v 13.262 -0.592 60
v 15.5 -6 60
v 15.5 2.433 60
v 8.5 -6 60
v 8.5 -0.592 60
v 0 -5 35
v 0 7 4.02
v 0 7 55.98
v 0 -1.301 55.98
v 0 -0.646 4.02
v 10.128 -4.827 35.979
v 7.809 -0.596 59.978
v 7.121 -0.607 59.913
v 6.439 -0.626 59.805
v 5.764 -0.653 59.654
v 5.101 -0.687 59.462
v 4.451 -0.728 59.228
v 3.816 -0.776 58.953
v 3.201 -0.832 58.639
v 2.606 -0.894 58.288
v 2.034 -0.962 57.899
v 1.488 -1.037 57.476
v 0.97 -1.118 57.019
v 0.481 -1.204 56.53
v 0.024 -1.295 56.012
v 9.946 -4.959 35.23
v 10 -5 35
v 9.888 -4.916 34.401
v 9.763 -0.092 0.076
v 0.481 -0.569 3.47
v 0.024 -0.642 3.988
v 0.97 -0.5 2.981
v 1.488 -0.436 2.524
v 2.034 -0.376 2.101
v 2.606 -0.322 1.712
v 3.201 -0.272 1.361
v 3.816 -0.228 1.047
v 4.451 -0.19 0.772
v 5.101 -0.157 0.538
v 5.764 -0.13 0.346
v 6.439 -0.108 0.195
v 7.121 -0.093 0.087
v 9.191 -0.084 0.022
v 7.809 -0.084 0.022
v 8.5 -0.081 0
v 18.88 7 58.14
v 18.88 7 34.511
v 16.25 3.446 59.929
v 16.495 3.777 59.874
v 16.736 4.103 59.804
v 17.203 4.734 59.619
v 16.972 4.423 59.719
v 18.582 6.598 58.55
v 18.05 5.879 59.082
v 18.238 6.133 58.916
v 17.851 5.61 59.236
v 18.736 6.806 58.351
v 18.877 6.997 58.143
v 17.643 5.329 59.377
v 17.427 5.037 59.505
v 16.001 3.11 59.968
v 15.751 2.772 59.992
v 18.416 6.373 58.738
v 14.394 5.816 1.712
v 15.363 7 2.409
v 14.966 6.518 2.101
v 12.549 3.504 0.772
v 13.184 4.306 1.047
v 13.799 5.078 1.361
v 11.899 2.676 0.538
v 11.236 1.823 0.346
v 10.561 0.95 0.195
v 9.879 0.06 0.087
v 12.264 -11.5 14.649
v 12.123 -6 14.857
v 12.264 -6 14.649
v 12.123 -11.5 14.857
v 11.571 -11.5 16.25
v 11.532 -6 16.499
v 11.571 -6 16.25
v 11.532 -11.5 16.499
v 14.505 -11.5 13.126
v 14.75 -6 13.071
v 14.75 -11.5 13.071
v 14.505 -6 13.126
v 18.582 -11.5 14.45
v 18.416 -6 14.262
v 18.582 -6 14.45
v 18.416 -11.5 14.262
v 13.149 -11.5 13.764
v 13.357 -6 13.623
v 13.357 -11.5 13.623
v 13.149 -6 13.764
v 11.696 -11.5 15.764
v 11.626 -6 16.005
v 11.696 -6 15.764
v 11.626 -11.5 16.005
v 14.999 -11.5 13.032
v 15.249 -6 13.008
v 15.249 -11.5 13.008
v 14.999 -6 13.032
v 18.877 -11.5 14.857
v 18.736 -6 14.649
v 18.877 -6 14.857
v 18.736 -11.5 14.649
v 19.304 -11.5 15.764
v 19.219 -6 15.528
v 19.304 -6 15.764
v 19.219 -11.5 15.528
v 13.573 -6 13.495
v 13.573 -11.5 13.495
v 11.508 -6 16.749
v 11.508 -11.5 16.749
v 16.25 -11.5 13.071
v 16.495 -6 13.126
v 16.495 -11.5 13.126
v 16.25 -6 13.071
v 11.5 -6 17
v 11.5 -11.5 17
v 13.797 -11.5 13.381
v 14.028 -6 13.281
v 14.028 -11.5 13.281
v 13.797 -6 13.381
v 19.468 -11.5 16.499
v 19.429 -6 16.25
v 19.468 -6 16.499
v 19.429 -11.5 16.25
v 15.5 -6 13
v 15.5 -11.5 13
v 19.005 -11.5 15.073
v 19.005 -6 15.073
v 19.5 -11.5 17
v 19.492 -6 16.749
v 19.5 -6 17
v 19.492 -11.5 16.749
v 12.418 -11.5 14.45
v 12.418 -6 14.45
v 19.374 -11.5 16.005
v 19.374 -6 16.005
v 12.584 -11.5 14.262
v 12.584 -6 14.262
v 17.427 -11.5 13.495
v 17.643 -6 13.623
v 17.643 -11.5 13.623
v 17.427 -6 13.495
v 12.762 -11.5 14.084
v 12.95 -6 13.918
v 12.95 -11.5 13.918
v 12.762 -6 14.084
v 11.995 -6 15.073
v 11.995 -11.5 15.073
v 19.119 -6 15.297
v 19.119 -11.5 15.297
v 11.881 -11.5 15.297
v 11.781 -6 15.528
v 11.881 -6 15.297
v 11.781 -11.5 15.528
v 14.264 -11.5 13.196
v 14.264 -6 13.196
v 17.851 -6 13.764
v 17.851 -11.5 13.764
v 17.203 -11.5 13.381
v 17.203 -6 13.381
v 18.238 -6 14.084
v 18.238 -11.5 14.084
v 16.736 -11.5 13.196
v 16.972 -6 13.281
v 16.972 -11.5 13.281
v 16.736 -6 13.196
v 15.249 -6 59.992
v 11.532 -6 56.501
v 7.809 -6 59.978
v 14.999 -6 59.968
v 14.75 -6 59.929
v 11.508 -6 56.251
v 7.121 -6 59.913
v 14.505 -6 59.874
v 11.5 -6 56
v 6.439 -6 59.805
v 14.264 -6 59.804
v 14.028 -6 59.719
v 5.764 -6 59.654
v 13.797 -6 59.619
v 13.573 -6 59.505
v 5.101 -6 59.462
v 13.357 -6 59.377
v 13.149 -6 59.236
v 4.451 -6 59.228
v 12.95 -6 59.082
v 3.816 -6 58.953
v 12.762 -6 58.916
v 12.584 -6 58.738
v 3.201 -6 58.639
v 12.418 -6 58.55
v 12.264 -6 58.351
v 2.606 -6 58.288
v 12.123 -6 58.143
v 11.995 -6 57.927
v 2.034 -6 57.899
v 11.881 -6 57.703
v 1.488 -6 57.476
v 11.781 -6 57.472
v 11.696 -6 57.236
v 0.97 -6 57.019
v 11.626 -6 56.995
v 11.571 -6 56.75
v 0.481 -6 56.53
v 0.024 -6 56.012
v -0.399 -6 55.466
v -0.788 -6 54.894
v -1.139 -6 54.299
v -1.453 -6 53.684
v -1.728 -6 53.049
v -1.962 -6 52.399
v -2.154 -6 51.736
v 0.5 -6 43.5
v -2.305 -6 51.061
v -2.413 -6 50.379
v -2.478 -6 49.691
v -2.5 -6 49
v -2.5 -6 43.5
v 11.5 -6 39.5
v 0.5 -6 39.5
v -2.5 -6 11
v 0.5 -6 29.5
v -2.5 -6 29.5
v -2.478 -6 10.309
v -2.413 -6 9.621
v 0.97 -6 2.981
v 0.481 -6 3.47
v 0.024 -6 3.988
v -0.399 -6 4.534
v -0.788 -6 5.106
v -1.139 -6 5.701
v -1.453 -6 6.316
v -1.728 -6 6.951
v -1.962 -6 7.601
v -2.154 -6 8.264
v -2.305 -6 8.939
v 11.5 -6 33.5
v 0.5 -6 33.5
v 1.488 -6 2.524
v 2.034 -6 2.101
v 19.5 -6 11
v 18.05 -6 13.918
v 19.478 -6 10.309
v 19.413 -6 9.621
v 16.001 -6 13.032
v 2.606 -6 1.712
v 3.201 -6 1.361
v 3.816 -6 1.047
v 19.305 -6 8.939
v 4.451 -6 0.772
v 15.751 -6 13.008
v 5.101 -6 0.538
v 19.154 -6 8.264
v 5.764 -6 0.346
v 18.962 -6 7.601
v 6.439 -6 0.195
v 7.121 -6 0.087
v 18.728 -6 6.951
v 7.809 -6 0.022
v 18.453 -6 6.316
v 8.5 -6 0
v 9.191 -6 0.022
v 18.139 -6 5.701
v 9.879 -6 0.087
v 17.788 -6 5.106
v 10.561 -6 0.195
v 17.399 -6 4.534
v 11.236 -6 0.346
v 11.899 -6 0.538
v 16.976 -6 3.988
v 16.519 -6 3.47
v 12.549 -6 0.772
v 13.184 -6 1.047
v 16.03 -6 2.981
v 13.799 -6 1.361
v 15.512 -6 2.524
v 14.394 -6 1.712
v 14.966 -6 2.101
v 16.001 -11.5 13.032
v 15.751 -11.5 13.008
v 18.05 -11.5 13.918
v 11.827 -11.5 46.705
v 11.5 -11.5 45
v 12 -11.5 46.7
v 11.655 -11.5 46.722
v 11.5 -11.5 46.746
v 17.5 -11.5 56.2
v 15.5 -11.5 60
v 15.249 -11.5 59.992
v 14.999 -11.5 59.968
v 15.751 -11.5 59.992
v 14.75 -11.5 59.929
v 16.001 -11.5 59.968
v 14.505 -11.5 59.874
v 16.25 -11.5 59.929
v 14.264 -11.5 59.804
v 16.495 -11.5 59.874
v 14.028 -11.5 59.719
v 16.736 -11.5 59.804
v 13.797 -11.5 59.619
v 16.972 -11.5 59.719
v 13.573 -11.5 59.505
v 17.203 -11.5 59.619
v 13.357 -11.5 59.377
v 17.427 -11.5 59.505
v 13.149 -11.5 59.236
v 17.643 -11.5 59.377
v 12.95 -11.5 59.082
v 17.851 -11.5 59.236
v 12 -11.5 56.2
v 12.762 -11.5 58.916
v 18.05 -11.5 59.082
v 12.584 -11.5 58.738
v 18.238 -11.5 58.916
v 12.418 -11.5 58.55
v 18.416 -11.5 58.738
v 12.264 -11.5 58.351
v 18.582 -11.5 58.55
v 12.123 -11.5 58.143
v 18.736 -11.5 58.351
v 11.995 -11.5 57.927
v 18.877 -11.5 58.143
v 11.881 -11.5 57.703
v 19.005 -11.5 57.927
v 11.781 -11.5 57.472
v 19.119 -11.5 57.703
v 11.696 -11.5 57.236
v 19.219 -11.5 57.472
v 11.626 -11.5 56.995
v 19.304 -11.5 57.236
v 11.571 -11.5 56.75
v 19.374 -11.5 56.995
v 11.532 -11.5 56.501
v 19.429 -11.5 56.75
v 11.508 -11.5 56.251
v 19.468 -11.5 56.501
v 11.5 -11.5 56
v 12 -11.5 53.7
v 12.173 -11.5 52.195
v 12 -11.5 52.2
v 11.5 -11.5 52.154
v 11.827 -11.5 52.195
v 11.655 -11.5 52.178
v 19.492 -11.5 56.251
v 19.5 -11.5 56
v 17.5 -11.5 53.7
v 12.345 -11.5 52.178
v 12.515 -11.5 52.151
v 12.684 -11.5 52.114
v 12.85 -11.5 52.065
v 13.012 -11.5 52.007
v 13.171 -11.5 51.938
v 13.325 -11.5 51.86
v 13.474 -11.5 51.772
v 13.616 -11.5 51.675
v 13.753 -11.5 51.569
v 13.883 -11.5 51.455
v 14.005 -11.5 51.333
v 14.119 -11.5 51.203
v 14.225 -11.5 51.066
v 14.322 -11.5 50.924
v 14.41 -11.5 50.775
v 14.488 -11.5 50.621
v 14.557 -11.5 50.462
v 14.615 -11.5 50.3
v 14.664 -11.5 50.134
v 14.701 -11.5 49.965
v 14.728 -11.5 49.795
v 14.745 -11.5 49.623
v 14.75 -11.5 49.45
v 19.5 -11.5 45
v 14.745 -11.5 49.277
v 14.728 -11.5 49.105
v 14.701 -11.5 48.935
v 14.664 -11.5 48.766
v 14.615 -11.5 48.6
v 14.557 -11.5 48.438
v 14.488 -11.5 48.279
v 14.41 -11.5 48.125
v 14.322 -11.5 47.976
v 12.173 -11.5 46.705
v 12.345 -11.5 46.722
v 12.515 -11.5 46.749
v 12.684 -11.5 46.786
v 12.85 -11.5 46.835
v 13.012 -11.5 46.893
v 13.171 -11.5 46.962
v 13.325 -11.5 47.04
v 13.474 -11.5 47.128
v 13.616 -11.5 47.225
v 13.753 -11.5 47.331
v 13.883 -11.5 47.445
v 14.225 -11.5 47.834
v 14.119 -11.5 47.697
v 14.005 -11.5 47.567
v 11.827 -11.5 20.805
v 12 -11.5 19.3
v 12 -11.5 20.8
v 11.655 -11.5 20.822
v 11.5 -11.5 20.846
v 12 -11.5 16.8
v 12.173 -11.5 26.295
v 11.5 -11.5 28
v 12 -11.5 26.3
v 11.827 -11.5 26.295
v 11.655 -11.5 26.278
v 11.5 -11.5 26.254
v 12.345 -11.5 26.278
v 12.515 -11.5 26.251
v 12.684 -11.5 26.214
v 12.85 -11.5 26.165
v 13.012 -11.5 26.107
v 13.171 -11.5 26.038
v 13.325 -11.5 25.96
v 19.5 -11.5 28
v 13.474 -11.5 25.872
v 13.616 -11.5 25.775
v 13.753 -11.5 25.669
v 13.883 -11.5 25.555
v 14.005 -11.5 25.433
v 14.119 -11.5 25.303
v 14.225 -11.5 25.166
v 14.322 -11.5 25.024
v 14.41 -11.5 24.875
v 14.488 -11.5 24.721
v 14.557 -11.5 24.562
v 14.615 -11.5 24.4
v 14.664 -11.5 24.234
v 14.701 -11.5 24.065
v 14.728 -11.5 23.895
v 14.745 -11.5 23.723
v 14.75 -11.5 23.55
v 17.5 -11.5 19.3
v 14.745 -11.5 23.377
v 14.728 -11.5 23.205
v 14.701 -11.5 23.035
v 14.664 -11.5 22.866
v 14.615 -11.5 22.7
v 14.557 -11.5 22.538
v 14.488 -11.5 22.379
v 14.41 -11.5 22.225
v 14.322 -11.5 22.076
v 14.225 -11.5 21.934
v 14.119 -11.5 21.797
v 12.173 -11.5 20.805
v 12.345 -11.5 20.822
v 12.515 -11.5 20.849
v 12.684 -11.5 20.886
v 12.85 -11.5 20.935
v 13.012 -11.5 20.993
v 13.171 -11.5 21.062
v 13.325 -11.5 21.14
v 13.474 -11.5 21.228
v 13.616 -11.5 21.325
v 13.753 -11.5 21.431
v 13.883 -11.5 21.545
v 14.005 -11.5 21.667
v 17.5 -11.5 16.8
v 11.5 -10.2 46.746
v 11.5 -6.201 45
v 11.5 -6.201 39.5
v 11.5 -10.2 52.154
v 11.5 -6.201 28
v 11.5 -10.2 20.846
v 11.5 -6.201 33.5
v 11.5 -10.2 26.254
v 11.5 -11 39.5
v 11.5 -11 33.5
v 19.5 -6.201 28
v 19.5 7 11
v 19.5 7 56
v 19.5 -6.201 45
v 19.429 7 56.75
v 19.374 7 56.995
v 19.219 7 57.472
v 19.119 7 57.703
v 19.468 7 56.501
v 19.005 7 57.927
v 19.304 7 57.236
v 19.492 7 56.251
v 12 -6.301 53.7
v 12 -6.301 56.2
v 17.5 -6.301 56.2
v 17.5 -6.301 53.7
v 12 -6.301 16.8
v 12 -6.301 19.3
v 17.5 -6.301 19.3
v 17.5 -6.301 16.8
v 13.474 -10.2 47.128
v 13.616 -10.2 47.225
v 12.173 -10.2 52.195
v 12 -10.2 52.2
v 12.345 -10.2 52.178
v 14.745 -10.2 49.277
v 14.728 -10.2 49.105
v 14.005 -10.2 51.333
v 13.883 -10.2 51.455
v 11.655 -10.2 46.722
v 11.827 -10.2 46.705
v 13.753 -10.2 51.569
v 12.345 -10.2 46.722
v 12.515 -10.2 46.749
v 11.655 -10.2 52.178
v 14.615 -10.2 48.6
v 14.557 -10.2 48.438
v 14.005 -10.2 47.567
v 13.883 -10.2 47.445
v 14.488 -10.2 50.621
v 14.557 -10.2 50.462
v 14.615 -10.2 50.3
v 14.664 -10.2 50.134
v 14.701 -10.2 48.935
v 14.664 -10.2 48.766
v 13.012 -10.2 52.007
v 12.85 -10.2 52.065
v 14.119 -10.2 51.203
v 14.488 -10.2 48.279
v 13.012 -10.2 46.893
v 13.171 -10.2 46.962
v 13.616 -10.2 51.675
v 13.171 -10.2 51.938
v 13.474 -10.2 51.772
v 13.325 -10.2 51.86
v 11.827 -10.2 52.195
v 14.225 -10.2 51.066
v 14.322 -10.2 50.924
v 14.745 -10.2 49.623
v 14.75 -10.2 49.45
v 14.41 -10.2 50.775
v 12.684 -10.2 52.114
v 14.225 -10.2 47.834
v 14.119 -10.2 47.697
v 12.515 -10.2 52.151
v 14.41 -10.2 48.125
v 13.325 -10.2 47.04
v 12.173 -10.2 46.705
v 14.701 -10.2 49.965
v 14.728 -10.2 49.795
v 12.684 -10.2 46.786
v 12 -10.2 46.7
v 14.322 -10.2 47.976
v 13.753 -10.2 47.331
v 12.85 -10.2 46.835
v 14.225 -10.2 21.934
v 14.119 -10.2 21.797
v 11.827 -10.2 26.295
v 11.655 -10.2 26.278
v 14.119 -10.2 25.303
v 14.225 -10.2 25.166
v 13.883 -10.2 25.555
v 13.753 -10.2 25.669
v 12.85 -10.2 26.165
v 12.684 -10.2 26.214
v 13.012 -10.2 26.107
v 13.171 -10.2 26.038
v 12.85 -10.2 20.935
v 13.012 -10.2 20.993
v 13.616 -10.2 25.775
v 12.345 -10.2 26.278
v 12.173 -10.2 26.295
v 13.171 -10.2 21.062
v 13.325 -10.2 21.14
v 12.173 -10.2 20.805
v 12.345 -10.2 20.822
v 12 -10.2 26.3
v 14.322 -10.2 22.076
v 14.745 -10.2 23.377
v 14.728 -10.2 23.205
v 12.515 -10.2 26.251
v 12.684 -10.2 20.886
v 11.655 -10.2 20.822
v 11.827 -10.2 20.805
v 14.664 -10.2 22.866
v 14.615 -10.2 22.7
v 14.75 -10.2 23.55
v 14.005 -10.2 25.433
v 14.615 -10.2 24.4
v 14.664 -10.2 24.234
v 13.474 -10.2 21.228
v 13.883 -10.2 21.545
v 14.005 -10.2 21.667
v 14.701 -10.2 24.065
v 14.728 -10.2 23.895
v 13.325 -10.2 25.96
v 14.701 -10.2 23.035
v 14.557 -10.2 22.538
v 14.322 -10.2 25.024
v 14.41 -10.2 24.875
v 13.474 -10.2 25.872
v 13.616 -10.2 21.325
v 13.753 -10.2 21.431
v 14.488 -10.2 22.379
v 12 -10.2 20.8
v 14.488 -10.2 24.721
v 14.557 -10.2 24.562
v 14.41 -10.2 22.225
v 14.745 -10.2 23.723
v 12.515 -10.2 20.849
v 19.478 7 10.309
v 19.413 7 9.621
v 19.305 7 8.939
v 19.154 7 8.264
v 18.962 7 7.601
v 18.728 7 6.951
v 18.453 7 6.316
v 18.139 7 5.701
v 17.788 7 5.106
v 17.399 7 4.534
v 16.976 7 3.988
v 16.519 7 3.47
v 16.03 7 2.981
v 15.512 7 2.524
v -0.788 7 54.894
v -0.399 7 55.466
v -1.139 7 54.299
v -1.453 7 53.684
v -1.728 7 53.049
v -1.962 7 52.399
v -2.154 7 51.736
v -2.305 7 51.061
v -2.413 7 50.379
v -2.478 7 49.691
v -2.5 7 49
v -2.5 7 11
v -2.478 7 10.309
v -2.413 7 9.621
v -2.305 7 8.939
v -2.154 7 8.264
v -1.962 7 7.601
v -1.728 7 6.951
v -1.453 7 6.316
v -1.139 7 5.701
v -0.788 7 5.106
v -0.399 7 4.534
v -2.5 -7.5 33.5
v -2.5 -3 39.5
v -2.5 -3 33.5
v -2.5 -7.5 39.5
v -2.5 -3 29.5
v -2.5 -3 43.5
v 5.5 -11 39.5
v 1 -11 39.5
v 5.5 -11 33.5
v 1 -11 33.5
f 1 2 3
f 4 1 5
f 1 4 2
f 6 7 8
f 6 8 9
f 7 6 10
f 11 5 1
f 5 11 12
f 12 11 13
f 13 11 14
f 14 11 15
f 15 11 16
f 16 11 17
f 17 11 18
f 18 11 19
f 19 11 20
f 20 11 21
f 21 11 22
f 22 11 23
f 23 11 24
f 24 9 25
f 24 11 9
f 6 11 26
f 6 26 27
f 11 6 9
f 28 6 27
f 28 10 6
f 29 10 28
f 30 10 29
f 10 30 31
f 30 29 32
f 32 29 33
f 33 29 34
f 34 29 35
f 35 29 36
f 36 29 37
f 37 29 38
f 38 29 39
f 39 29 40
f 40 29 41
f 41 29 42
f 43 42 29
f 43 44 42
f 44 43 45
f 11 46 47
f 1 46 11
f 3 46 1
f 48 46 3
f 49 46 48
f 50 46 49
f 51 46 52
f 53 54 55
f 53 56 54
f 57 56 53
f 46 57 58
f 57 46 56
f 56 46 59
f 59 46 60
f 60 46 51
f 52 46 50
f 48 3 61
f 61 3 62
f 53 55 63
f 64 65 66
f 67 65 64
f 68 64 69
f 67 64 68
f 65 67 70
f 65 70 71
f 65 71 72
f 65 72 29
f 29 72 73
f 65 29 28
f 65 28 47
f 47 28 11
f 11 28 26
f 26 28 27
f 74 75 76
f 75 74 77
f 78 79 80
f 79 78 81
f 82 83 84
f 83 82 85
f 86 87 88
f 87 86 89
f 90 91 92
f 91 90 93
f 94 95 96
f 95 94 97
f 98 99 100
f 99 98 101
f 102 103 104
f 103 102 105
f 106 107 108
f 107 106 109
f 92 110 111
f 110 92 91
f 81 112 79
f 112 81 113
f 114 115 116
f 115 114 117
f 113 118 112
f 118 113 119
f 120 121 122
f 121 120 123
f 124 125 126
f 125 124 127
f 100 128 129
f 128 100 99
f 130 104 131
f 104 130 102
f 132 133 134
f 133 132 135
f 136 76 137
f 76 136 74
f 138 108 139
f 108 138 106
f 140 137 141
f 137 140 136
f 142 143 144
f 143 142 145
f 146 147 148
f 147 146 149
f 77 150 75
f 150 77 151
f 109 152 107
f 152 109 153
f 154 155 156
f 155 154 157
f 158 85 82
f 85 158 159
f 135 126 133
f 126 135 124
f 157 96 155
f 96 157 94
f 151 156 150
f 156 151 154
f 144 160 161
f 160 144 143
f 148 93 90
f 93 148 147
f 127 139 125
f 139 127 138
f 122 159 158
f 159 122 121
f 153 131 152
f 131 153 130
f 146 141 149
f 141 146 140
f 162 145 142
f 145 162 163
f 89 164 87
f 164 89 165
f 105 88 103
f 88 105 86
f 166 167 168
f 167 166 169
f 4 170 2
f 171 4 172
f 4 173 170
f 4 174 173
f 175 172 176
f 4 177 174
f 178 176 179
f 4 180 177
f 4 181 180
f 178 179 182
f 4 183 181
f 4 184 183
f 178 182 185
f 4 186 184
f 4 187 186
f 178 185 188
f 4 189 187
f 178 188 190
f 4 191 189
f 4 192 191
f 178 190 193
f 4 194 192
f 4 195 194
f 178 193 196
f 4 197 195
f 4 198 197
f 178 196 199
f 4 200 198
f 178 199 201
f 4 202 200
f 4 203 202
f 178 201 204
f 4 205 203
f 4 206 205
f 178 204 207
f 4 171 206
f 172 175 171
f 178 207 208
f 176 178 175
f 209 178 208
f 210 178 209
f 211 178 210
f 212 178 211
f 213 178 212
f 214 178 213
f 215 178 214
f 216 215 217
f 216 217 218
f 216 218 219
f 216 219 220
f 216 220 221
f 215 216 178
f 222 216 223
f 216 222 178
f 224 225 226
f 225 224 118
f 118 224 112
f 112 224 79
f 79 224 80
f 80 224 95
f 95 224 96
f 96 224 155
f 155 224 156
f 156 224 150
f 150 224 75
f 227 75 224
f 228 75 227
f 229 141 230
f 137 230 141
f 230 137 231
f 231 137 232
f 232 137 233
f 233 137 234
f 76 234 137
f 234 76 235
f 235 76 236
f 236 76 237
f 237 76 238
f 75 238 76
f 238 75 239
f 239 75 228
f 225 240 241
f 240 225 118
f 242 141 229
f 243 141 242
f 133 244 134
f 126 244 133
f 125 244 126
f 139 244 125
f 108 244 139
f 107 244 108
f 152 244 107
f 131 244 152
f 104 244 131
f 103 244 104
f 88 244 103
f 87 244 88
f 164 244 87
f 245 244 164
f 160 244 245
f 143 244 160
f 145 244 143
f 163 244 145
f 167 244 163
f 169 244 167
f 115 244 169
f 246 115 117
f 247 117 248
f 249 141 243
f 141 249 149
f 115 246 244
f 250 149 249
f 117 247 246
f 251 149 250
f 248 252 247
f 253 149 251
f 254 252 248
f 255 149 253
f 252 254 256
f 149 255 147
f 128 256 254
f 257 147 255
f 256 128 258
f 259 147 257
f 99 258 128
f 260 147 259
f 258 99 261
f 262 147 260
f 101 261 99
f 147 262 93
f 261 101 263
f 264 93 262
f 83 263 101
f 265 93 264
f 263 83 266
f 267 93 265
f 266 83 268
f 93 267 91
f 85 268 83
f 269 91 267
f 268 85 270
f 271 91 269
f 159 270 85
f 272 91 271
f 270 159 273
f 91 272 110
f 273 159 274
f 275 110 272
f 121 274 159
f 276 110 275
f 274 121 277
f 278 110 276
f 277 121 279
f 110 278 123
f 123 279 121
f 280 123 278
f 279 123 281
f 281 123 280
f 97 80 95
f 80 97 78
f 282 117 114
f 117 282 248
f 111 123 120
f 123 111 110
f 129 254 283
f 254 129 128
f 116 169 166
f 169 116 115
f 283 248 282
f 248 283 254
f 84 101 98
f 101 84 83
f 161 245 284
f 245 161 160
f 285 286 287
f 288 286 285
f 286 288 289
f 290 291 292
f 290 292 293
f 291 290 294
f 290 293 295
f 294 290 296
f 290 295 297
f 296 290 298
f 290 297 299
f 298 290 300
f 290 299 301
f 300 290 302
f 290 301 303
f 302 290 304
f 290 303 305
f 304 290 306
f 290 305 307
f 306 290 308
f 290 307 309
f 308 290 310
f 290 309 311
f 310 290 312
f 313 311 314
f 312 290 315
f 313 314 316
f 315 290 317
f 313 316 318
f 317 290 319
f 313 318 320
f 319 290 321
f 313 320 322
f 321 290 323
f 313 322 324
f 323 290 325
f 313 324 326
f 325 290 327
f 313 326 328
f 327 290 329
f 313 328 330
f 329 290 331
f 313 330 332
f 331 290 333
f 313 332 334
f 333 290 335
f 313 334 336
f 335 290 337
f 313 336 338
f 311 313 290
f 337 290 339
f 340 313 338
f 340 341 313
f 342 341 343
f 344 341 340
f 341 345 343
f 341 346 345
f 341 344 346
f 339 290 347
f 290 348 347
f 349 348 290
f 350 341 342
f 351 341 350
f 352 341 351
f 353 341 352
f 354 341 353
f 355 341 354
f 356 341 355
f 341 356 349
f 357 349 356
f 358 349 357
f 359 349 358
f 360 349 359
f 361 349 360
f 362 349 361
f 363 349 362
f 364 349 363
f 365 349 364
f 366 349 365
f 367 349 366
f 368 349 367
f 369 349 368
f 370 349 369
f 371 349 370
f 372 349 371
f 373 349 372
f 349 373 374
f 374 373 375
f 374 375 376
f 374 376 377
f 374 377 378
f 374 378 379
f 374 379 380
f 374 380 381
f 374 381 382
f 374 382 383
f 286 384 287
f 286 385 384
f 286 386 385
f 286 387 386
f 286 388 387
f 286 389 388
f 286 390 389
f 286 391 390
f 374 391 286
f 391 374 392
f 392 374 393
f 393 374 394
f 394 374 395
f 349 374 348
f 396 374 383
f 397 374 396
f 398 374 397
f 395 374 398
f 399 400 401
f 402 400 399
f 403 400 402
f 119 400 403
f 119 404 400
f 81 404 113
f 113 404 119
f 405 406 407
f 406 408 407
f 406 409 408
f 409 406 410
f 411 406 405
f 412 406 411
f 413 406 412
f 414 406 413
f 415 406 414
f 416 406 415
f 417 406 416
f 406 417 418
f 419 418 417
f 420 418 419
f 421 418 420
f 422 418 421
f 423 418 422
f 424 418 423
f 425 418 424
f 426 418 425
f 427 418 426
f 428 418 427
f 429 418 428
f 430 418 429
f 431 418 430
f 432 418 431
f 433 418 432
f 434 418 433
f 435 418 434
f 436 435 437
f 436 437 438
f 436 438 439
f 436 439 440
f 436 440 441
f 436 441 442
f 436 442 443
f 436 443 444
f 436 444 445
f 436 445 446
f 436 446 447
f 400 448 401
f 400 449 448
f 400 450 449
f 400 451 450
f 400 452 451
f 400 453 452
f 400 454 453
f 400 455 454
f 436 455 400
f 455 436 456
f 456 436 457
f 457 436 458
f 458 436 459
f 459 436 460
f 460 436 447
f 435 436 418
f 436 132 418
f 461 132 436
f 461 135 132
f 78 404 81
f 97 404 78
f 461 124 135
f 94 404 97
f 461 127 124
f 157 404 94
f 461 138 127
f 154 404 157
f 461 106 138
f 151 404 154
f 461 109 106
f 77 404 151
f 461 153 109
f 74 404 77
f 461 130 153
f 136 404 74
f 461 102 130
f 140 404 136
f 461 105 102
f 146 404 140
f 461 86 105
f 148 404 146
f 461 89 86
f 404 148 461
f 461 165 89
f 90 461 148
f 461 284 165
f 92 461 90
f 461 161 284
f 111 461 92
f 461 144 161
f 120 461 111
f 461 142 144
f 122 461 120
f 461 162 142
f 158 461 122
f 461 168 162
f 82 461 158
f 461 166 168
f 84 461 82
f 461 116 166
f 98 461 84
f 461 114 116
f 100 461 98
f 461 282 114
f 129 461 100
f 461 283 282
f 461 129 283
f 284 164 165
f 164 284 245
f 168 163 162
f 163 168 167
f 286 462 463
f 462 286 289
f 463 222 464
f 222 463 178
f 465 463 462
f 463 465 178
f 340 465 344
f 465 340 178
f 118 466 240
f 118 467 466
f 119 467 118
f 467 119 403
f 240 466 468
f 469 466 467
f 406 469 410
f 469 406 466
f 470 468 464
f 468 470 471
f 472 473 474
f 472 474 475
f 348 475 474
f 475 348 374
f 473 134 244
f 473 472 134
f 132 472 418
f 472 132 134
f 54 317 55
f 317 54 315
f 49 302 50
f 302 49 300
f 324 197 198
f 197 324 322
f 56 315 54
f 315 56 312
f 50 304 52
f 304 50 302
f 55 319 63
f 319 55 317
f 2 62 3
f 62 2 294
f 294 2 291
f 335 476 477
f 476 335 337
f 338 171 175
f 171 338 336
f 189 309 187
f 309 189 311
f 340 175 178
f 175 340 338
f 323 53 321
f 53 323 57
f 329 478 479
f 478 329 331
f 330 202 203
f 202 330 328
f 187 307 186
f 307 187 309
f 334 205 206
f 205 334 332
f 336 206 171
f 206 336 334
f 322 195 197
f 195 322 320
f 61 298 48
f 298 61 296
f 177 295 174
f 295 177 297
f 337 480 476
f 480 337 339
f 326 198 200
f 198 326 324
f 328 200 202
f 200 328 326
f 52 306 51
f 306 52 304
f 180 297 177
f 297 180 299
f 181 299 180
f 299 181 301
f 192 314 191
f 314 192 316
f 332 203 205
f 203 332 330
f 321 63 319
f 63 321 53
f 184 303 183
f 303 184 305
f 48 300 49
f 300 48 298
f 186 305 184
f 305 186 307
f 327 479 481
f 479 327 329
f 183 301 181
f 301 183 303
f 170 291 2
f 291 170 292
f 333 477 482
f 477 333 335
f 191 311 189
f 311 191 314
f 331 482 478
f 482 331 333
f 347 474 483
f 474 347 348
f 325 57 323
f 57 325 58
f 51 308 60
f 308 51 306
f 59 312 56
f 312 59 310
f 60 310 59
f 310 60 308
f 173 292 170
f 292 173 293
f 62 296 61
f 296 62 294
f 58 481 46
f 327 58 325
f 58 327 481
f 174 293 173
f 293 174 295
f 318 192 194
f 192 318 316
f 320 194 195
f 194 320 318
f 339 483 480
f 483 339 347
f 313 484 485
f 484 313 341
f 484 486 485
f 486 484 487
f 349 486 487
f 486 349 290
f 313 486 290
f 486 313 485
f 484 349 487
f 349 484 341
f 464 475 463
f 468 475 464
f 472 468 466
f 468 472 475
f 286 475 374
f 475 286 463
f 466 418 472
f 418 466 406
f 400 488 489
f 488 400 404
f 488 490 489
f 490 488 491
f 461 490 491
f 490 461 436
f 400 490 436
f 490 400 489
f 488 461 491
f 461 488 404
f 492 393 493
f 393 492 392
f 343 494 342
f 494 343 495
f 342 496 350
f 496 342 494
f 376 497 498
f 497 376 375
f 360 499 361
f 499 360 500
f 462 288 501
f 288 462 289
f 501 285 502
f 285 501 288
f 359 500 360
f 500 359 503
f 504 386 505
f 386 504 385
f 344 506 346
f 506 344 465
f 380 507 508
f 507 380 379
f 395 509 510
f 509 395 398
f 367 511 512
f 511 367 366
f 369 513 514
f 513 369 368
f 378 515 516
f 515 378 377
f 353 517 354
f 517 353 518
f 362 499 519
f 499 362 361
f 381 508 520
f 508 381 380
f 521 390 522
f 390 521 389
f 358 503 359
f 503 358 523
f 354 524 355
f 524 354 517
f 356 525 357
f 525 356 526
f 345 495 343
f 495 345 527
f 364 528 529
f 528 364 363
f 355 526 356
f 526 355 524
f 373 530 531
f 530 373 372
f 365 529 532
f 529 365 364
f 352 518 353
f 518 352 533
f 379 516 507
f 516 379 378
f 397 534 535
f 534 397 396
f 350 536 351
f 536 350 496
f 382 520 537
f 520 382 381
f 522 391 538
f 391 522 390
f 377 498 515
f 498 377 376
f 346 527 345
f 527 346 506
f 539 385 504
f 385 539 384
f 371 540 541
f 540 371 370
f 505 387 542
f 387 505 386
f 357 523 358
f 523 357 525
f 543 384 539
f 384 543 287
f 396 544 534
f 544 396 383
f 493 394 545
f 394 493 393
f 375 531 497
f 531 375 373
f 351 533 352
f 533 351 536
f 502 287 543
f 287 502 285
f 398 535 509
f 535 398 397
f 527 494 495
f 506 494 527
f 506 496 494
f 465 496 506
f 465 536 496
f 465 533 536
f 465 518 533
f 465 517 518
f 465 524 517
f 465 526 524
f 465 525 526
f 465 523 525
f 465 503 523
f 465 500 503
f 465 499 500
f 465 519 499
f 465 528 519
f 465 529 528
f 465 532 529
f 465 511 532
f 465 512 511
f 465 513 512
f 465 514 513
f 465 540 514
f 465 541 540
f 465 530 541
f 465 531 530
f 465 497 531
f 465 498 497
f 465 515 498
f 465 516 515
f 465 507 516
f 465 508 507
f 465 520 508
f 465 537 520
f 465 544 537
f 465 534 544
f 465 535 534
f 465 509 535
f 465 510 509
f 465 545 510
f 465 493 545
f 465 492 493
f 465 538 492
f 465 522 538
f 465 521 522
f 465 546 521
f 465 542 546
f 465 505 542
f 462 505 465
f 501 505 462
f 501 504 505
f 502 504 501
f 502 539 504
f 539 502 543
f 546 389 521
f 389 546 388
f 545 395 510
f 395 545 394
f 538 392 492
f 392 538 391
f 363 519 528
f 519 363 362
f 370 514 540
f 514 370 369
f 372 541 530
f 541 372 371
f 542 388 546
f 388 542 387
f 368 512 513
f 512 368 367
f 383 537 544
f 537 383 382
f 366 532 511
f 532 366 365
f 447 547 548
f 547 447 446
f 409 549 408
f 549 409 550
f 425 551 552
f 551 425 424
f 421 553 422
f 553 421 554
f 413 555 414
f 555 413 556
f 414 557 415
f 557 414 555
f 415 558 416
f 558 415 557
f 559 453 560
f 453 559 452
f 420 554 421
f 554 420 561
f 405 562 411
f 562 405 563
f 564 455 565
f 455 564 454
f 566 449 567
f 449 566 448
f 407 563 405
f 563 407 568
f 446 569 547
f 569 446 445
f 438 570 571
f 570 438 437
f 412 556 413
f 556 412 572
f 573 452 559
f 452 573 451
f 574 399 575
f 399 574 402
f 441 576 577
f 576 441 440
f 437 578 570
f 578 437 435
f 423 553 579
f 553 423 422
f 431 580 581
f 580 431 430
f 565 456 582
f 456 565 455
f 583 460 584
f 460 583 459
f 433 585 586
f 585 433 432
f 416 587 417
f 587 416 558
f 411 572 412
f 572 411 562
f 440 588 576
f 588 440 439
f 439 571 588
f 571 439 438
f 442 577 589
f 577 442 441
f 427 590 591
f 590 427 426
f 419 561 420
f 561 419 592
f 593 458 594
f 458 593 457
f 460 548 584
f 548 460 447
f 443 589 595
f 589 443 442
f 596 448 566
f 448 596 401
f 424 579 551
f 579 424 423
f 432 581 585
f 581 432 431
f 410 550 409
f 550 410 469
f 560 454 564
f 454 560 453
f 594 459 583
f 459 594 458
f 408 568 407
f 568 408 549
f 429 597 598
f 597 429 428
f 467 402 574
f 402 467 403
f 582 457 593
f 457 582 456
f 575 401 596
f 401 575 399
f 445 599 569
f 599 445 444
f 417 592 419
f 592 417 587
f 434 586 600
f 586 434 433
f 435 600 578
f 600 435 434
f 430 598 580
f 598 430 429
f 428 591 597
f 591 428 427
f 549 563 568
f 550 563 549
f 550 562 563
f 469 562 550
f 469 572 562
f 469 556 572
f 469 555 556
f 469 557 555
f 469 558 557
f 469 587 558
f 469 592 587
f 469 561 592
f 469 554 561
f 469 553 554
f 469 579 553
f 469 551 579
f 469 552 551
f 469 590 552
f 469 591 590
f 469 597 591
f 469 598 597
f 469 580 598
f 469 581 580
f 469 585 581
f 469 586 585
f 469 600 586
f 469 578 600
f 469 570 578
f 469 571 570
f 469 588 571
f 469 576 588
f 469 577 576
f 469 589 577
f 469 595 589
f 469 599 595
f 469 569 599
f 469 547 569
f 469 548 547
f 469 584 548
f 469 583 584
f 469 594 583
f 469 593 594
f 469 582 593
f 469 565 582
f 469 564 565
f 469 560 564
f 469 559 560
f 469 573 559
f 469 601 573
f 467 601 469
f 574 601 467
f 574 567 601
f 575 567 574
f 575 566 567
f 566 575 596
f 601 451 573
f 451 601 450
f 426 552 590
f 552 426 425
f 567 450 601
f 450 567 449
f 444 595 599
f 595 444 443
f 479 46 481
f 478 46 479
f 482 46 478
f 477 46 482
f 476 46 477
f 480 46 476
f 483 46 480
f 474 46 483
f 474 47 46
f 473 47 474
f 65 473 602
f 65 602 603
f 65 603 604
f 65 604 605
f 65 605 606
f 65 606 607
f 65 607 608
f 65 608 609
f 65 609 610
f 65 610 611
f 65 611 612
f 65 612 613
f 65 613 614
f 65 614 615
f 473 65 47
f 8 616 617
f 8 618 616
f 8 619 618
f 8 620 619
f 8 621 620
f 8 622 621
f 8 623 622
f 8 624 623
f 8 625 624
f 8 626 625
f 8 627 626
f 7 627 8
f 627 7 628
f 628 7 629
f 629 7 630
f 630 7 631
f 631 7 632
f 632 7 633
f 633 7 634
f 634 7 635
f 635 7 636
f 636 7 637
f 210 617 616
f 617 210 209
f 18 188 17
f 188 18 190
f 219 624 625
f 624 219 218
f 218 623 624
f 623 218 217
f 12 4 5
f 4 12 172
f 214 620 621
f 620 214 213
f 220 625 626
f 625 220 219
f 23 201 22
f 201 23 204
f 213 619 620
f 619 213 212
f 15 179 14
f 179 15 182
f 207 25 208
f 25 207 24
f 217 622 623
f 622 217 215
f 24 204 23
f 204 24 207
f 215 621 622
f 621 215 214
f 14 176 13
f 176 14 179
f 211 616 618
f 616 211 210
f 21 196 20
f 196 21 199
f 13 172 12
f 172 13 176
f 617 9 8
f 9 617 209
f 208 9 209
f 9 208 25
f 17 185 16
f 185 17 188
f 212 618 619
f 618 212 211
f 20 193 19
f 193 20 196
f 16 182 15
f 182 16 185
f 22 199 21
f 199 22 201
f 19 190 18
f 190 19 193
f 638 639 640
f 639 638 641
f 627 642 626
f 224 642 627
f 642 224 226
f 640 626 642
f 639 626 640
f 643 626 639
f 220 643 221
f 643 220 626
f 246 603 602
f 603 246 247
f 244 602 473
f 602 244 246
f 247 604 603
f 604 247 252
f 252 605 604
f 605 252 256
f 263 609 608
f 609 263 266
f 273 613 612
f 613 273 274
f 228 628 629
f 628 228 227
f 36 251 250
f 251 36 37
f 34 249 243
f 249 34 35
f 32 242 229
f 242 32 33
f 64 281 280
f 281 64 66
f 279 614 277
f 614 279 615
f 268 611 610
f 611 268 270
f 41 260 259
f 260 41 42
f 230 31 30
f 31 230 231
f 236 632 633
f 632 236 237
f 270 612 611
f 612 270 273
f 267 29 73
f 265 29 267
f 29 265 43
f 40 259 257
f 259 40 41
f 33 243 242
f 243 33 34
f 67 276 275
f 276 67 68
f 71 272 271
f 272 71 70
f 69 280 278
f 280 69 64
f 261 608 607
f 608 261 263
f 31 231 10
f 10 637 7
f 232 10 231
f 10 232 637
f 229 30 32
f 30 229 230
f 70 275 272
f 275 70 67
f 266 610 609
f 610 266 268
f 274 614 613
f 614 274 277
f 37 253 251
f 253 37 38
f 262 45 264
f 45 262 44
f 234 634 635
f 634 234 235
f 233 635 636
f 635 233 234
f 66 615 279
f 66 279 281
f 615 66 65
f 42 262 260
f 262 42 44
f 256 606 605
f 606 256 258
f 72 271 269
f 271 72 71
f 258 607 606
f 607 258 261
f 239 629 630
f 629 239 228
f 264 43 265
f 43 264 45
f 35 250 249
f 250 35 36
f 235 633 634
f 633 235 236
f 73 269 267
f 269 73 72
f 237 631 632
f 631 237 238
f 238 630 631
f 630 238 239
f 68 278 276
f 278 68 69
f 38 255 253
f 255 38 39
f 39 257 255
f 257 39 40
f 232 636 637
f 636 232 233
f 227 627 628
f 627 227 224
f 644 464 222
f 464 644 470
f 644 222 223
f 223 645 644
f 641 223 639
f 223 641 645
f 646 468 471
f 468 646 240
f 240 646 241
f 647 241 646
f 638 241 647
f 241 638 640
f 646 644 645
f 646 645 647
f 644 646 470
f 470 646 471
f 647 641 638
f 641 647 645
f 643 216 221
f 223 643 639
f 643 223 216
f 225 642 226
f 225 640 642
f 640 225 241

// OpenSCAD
//
// ktRACK92
//
//

gap1 = 0.001;
gap2 = 0.003;
th = 2;

W = 19.4+1-0.5;

//pad();
//pad_mir();
//fork();
base();
//base_mir();




module base_mir()
{
difference()
{
    mirror([1,0,0]) base();
}
}


module base()
{
difference()
{

    union()
    {
        translate([-5/2+22-8/2, 0-6, 60-8/2]) rotate([-90, 0, 0]) cylinder(h=13, r=8/2, $fn=100);
        translate([-5/2+22/2, 0-6, 60-22/2]) cube([22/2-8/2, 13, 22/2]);
        translate([-5/2+22/2, 0-6, 60-22/2]) cube([22/2, 13, 22/2-8/2]);
        translate([22/2-5/2, 0-6, 60-22/2]) rotate([-90, 0, 0]) cylinder(h=13, r=22/2, $fn=100);
        translate([-5/2, 0-6, 22/2]) cube([22, 13, 60-22/2-22/2]);
        translate([22/2-5/2, 0-6, 22/2]) rotate([-90, 0, 0]) cylinder(h=13, r=22/2, $fn=100);
        translate([-5/2-8/2+22, -11.5, 60-(45+2)/2]) rotate([-90, 180, 0]) pad();
        translate([-5/2, -11, 60-(45+2)/2-6/2]) cube([14, 5, 6]);
    }
    fork();
    translate([-5/2, -11+5-1.5, 60-(45+2)/2-6/2]) rotate([0, 0, 180+45]) cube([5, 18, 6]);
    translate([-5/2+4*2, -11, 60-(45+2)/2-6/2+6]) rotate([0, 0, 180-45]) cube([14, 4, 4]);
    translate([-5/2+4*2, -11, 60-(45+2)/2-6/2-4]) rotate([0, 0, 180-45]) cube([14, 4, 4]);
}
}

module fork()
{
difference()
{

    union()
    {
        translate([0, 0-5, 0]) cube([20, 30+5, 60]);
    }
    translate([0+20, 0-5, 60-25]) rotate([10, 0, 180]) cube([20, 20, 60]);
    translate([0, 0-5, 60-25]) rotate([180+8, 0, 0]) cube([20, 20, 60]);

    translate([0+10, 0-5, 60-25-1]) rotate([5, -90, 180+90-41.5]) cube([50, 20, 60]);
    translate([0+10, 0-5, 60-25+1]) rotate([180+5, 0, 90-37]) cube([50, 20, 60]);
}
}


module pad()
{
difference()
{

    union()
    {
        translate([0, -45/2+8/2-1, 0]) cylinder(h=8-2.5, r=8/2, $fn=100);
        translate([-8/2, -(45-8+2)/2, 0]) cube([8, 45-8+2, 8-2.5]);
        translate([0, 45/2-8/2+1, 0]) cylinder(h=8-2.5, r=8/2, $fn=100);
    }
    translate([-8/2+2, 8.7+17/2, 0-gap1]) cube([5.5, 2.5, 5.2]);
    translate([-8/2-gap1, -17/2, 0-gap1]) cube([8+gap2, 17, 7-1.7]);
    translate([-8/2+2, -8.7-17/2-2.5, 0-gap1]) cube([5.5, 2.5, 5.2]);

    translate([3.5, 8.7+17/4, 0]) cylinder(h=1.3, r=5.5/2, $fn=100);
    translate([3.5, -8.7-17/4, 0]) cylinder(h=1.3, r=5.5/2, $fn=100);
}
}


module cap()
{
difference()
{
    L=48;
    R=6;
    union()
    {
        translate([0, 0, 0]) cube([L-R/2, 16, 4.9+2]);
        translate([L-R/2, R/2, 0]) cylinder(h=4.9+2, r=R/2, $fn=100);
        translate([L-R/2, 16-R/2, 0]) cylinder(h=4.9+2, r=R/2, $fn=100);
        translate([L-R/2, R/2, 0]) cube([R/2, 16-R, 4.9+2]);
        
        translate([-15, 16/2-19/2, 0]) cube([25, 19, 10]);
    }
    translate([L-11, (16-11)/2, 0]) cylinder(h=4.9, r=2.7/2, $fn=100);
    translate([L-11, (16-11)/2, 4.9-1.5+0.5]) cylinder(h=1.5+2, r=4/2, $fn=100);
    translate([L-11, 16-(16-11)/2, 0]) cylinder(h=4.9, r=2.7/2, $fn=100);
    translate([L-11, 16-(16-11)/2, 4.9-1.5+0.5]) cylinder(h=1.5+2, r=4/2, $fn=100);
    
    #translate([L, 16/2, 0]) usb();
    translate([0, 16/2-7.5/2, 0]) cube([L-11.1, 7.5, 2.3+(5.4-2.3)/2]);
    translate([L-17.5, 16/2, 0]) cylinder(h=2.3+(5.4-2.3)/2, r=(16-th*2)/2, $fn=100);
    translate([0, 16/2-(16-th*2)/2, 0]) cube([L-16.5, (16-th*2), 2.3+(5.4-2.3)/2]);
    
    translate([-15+1, 16/2-19/2+1, -10]) cube([25-1*2, 19-1*2, 20-1]);
    translate([-15+1, 16/2-19/2+1, -10]) cube([25-1*2+1, 19-1*2, 10]);
}
}

module usb()
{
translate([-(11.1+1), 0, 0])
difference()
{
    union()
    {
        translate([0, -7.5/2, 0]) cube([11.1+1+gap2, 7.5, 2.3+(5.4-2.3)/2]);
        //translate([11.1-3.6, -9.2/2, 0]) cube([3.6, 9.2, 5.4]);
        //translate([11.1-3.8, -9.4/2, 0]) cube([3.8, 9.4, 5.4]);
        translate([11.1-4, -9.6/2, 0]) cube([4, 9.6, 5.4]);
    }
    translate([11.1, -7.5/2, 2.3+(5.4-2.3)/2-1]) rotate([45, 0, 0]) cube([1, 2, 2]);
    translate([11.1, 7.5/2, 2.3+(5.4-2.3)/2-1]) rotate([45, 0, 0]) cube([1, 2, 2]);
}
}


module base_old()
{
difference()
{
    union()
    {
        translate([-(15+53), -th-(W/2), 0]) dock();
        translate([-12, -((4*4)/2), 10]) clip();
    }
}
}
module base_yoko()
{
difference()
{
    union()
    {
        translate([-(15+53), -th-(W/2), 0]) dock_yoko();
        translate([-10, -((4*4)/2), 10]) clip();
        translate([-12, -((4*4)/2), 10]) translate([12, 0, 0-10]) cube([52-1, W+th-1.95+1, th+7]);
    }
    //kado
    translate([-(15+53), -th-(W/2)+th+1.95+1, 0]) rotate([0, 0, -90-45]) cube([5, 5, 30]);
    translate([-(15+53), -th-(W/2)+th+1.95+1+W-1, 0]) rotate([0, 0, 45]) cube([5, 5, 30]);
    translate([-(15+53), -th-(W/2)+th+1.95, th+18+(3.7+0.5)+th-1]) rotate([0, -45, 0]) cube([5, 30, 5]);
    translate([-(15+53), -th-(W/2)+th+1.95, th+18+(3.7+0.5)+th-1]) rotate([45, 0, 0]) cube([80, 5, 5]);
    translate([-(15+53), -th-(W/2)+th+1.95+1, 0]) rotate([90+45, 0, 0]) cube([120, 5, 5]);
    translate([-(15+53), -th-(W/2)+th+1.95+1+W-1, 0]) rotate([-45, 0, 0]) cube([120, 5, 5]);
    translate([-(15+53), -th-(W/2)+th+1.95+1+W-1, th+18+(3.7+0.5)+th]) rotate([-45, 0, 0]) cube([120, 5, 5]);
    translate([-(15+53)+1, -th-(W/2)+th+1.95, 0]) rotate([0, -90-45, 0]) cube([5, 30, 5]);
    translate([50+1-1, -th-(W/2)+th+1.95, 0]) rotate([0, 45, 0]) cube([5, 30, 5]);
    translate([50+2-1, -th-(W/2)+th+1.95+1, 0]) rotate([0, 0, -90-45]) cube([5, 5, 30]);
    translate([50+2-1, -th-(W/2)+th+1.95+1+W-1, 0]) rotate([0, 0, 45]) cube([5, 5, 30]);
}
}
module dock()
{
difference()
{
    union()
    {
        translate([15+10, 0, 0]) cube([53-10, W+th*2+1.5, th+18+(3.7+0.5)+th]);
    }
    translate([5, th, th]) unit_mae();
    translate([68, 0-gap1, th+7]) rotate([0, -45, 0])cube([30, 30, 30]);
}
}
module dock_yoko()
{
difference()
{
    union()
    {
        translate([0, th+1.95, 0]) cube([68, W+th-1.95+1, th+18+(3.7+0.5)+th]);
    }
    translate([5, th-gap1, th]) unit_yoko();
    translate([68, 0-gap1, th+7]) rotate([0, -45, 0])cube([30, 30, 30]);
}
}
module clip()
{
difference()
{
    union()
    {
        translate([12, 0, th]) cube([14, 4*4, 10]);

        translate([12, 0, 0-10]) cube([50-1, 4*4, th+10]);
        translate([29, 0, 10]) rotate([-90, 0, 0]) cylinder(h=3.8, r=8/2, $fn=100);
        translate([29, 4*2, 10]) rotate([-90, 0, 0]) cylinder(h=3.8, r=8/2, $fn=100);

        translate([29-sqrt(1/2)*19.5, 0, 0]) rotate([0, 45, 0]) cube([19.5, 3.8, 19.5]);
        translate([29-sqrt(1/2)*19.5, 4*2, 0]) rotate([0, 45, 0]) cube([19.5, 3.8, 19.5]);
    }
    translate([0, -gap1, -100-10]) cube([68, W+th+gap2, 100]);
    translate([29, -gap1, 10]) rotate([-90, 0, 0]) cylinder(h=W+th+gap2, r=2.2/2, $fn=100);
    translate([29, -gap1, 10]) rotate([-90, 0, 0]) cylinder(h=1.5, r=4/2, $fn=100);

    translate([56, 4*2, th-1]) cylinder(h=th, r=7.65/2, $fn=100);

    translate([29-sqrt(1/2)*19.5, 4*1-0.2, th]) cube([20, 4+0.2, 15]);
    translate([29-sqrt(1/2)*19.5, 4*3-0.2, th]) cube([20, 4+0.2, 15]);

}
    translate([56, 4*2, th-1]) cylinder(h=4, r=5/2, $fn=100);
}

module unit()
{
difference()
{
    union()
    {
        translate([0, 0, 0]) cube([49.3+1, W, 18]);
        translate([49.3+1, W/2, 0]) cylinder(h=18, r=W/2, $fn=100);
        translate([-18, (9.5+1)/2, 0]) cube([18, 9.5+1, 18]);
        translate([49.3+1-15+1, W, 0]) cube([15, 1.5, 18]);
    }
}
}

module unit_yoko()
{
difference()
{
    union()
    {
        translate([0, 0, 18]) cube([20, W, 0.5]);
        translate([20, 0, 18]) cube([14.6, W, 3.7+0.5]);
        translate([0, 0, 0]) cube([49.3+1, W, 18]);
        translate([49.3+1, W/2, 0]) cylinder(h=18, r=W/2, $fn=100);
        translate([49.3+1, 0, 0]) cube([(19.4+1)/2, W/2, 18]);
        translate([-18, (9.5+1)/2-10, 0]) cube([18, 9.5+1+10, 4.5]);
        translate([49.3+1-15+1, W, 0]) cube([15, 1.5, 18]);
    }
    translate([0, 0, th+10]) rotate([0, -45+10, 0])cube([30, 30, 30]);
    translate([49.3+1, 0, -1]) rotate([0, 45+15, 0])cube([30, 30, 30]);
}
}

module unit_mae()
{
difference()
{
    union()
    {
        translate([0, 0, 18]) cube([34.6, W, 3.5]);
        translate([0, 0, 0]) cube([49.3+1, W, 18]);
        translate([49.3+1, W/2, 0]) cylinder(h=18, r=W/2, $fn=100);
        translate([-18, (9.5+1)/2, 0]) cube([18, 9.5+1, 4.5]);
        translate([0, W, 4-1/2]) cube([49.3+1, 1.5, 7.8]);
    }
    translate([49.3+2.5, 0, -1]) rotate([0, 45+10, 0])cube([30, 30, 30]);
}
}

module tube()
{
difference()
{
    union()
    {
        BR = 2;
        $fn=100;
        minkowski()
        {
            translate([BR, BR, 0]) cube([(32+1*2)-BR*2, (21+1*2)-BR*2, 110-1]);
            cylinder(r=BR, h=1);
        }
    }
    
    BR = 2;
    $fn=100;
    translate([1, 1, 1])
    minkowski()
    {
        translate([BR, BR, 0]) cube([(32)-BR*2, (21)-BR*2, 110-1]);
        cylinder(r=BR, h=1);
    }
    
    translate([(32+1*2)/2, 0, 110]) resize([20.75, (21+1*2), 30]) rotate([0, 90, 90]) cylinder(h=1, r=1, $fn=100);
    
    #translate([(32+1*2)/2-5-9, 0, 110-4]) kado();
    #translate([(32+1*2)/2+4, 0, 110-4]) kado();
}
}
module kado()
{
difference()
{
    union()
    {
        translate([0, 0, 0]) cube([10, 50, 10]);
    }
    translate([0, 0, 0]) rotate([0, 90, 90]) cylinder(h=50, r=4, $fn=100);
    translate([10, 0, 0]) rotate([0, 90, 90]) cylinder(h=50, r=4, $fn=100);
}
}

module case2()
{
difference()
{
    union()
    {
        BR = 2;
        $fn=100;
        minkowski()
        {
            translate([BR, BR, 0]) cube([(60+1*2)-BR*2, (15+1*2)-BR*2, 105-1]);
            cylinder(r=BR, h=1);
        }
    }
    
    BR = 2;
    $fn=100;
    translate([1, 1, 1])
    minkowski()
    {
        translate([BR, BR, 0]) cube([(60)-BR*2, (15)-BR*2, 105-1]);
        cylinder(r=BR, h=1);
    }
    
    translate([(60+1*2)/2, 0, 105]) resize([20.75, (22+1*2), 30]) rotate([0, 90, 90]) cylinder(h=1, r=1, $fn=100);
    
    #translate([(60+1*2)/2-5-9, 0, 105-4]) kado();
    #translate([(60+1*2)/2+4, 0, 105-4]) kado();
}
}
module case()
{
difference()
{
    union()
    {
        BR = 5;
        $fn=100;
        minkowski()
        {
            translate([BR, BR, 0]) cube([(110+4*2)-BR*2, (63+5+6.5+1*2)-BR*2, 10-1]);
            cylinder(r=BR, h=1);
        }
    }
    translate([4, 5, 2]) cube([110, 63, 20]);
    
    translate([0, 2.5, 10/2+5/2]) rotate([0, 90, 0]) cylinder(h=130, r=3.5/2, $fn=100);
    translate([(110+4*2)/2-(25+2)/2, 0-gap1, 10/2]) cube([(25+2), 5+gap2, 20/2+gap1]);

    translate([(110+4*2)/2-6.5/2, (63+5+6.5+1*2)-20-2, 10-3.5-1]) cube([6.5, 20, 3.5]);
}
    #translate([40, 2.5, 10/2+5/2]) wa();
}
module huta()
{
difference()
{
    union()
    {
        BR = 5;
        $fn=100;
        translate([0, 0, 10+0.5])
        minkowski()
        {
            translate([BR, BR, 0]) cube([(110+4*2)-BR*2, (63+5+6.5+1*2)-BR*2, 10-1]);
            cylinder(r=BR, h=1);
        }
        translate([(110+4*2)/2-25/2, 0-gap1, 10/2+5/2]) cube([25, 5+gap2, 10/2+gap1]);
        translate([(110+4*2)/2-25/2, 5/2, 10/2+5/2]) rotate([0, 90, 0]) cylinder(h=25, r=5/2, $fn=100);
    }
    translate([4, 5, 10]) cube([110, 63, 10-2]);
    
    translate([0, 2.5, 10/2+5/2]) rotate([0, 90, 0]) cylinder(h=130, r=3.5/2, $fn=100);
    #translate([(110+4*2)/2-6.5/2, (63+5+6.5+1*2)-20-2, 10+1]) cube([6.5, 20, 3.5]);
}
}
module wa()
{
difference()
{
    union()
    {
        translate([0, 0, 0]) rotate([0, 90, 0]) cylinder(h=1, r=5/2, $fn=100);
    }
    translate([0-gap1, 0, 0]) rotate([0, 90, 0]) cylinder(h=1+gap2, r=2/2, $fn=100);
}
}

module hasami()
{
difference()
{
    union()
    {
        translate([-10/2, 0, 0]) cube([10, 67, 67]);
    }
    #translate([6/2, 0, 2]) rotate([45, 0, 180]) cube([6, 15, 95+30]);

}
}


module bottle()
{
difference()
{
    union()
    {
        BR = 5;
        $fn=100;
        translate([-50/2, -70/2+15, -1])
        minkowski()
        {
            translate([BR, BR, 0]) cube([50-BR*2, 70-BR*2, 30+1]);
            cylinder(r=BR, h=1);
        }
    }
    #translate([0, 0, 9]) rotate([-25, 0, 0]) rotate([0, 0, 90]) cylinder(h=100, r1=41/2, r2=41/2, $fn=100);

}
}


module hook()
{
difference()
{
    union()
    {
        translate([0, 0, 9.5+3]) scale([1, 0.6, 1]) rotate([0, 0, 90]) cylinder(h=0.5, r1=60/2, r2=60/2, $fn=100);
        translate([0, 0, 9.5]) scale([1, 0.6, 1]) rotate([0, 0, 90]) cylinder(h=3, r1=40/2, r2=60/2, $fn=100);
        translate([0, 0, 0]) scale([1, 0.6, 1]) rotate([0, 180, 90]) cylinder(h=3, r1=40/2, r2=60/2, $fn=100);
        translate([0, 0, 0-3]) scale([1, 0.6, 1]) rotate([0, 180, 90]) cylinder(h=0.5, r1=60/2, r2=60/2, $fn=100);
    }
    translate([-500/2, 0, -500/2]) cube([500, 500, 500]);
}
difference()
{
    union()
    {
        translate([0, 0, -3]) scale([1, 0.6, 1]) rotate([0, 0, 90]) cylinder(h=3+9.5+3, r1=60/2, r2=60/2, $fn=100);
    }
    translate([-500/2, 0, -500/2]) cube([500, 500, 500]);
    translate([-500/2, -500-5, -500/2]) cube([500, 500, 500]);
}
}

module stand()
{
difference()
{
    union()
    {
        BR = 5;
        $fn=100;
        translate([-50/2, -60/2+10, -1])
        minkowski()
        {
            translate([BR, BR, 0]) cube([50-BR*2, 60-BR*2, 30+1]);
            cylinder(r=BR, h=1);
        }
        translate([-30/2, -60/2+10+100-10/2, 65]) rotate([0, 90, 0]) cylinder(h=30, r=10/2, $fn=100);
        translate([-30/2, -60/2+10+100-10/2+2.4, 65+4.4]) rotate([-90-75, 0, 0]) cube([30, 100, 100]);
    }
    translate([0, 0, 9]) rotate([-25, 0, 0]) rotate([0, 0, 90]) cylinder(h=100, r1=41/2, r2=41/2, $fn=100);

    translate([-500/2, -500/2, -500]) cube([500, 5000, 500]);
    translate([100/2, 40, 6]) rotate([26.5, 0, 180]) cube([100, 100, 100]);

    
    translate([100/2, 40-5+0.5, 6]) rotate([26.5, 0, 180]) cube([100, 100, 60]);
    translate([-100/2, 40-5+0.5, 6]) cube([100, 4.5, 60]);

    translate([-100/2, -25, 31]) cube([100, 20, 4.5]);
}
}


module stand2()
{
    translate([0, 0, 0]) stand();
    translate([0, 107.5, 0]) stand();
}
